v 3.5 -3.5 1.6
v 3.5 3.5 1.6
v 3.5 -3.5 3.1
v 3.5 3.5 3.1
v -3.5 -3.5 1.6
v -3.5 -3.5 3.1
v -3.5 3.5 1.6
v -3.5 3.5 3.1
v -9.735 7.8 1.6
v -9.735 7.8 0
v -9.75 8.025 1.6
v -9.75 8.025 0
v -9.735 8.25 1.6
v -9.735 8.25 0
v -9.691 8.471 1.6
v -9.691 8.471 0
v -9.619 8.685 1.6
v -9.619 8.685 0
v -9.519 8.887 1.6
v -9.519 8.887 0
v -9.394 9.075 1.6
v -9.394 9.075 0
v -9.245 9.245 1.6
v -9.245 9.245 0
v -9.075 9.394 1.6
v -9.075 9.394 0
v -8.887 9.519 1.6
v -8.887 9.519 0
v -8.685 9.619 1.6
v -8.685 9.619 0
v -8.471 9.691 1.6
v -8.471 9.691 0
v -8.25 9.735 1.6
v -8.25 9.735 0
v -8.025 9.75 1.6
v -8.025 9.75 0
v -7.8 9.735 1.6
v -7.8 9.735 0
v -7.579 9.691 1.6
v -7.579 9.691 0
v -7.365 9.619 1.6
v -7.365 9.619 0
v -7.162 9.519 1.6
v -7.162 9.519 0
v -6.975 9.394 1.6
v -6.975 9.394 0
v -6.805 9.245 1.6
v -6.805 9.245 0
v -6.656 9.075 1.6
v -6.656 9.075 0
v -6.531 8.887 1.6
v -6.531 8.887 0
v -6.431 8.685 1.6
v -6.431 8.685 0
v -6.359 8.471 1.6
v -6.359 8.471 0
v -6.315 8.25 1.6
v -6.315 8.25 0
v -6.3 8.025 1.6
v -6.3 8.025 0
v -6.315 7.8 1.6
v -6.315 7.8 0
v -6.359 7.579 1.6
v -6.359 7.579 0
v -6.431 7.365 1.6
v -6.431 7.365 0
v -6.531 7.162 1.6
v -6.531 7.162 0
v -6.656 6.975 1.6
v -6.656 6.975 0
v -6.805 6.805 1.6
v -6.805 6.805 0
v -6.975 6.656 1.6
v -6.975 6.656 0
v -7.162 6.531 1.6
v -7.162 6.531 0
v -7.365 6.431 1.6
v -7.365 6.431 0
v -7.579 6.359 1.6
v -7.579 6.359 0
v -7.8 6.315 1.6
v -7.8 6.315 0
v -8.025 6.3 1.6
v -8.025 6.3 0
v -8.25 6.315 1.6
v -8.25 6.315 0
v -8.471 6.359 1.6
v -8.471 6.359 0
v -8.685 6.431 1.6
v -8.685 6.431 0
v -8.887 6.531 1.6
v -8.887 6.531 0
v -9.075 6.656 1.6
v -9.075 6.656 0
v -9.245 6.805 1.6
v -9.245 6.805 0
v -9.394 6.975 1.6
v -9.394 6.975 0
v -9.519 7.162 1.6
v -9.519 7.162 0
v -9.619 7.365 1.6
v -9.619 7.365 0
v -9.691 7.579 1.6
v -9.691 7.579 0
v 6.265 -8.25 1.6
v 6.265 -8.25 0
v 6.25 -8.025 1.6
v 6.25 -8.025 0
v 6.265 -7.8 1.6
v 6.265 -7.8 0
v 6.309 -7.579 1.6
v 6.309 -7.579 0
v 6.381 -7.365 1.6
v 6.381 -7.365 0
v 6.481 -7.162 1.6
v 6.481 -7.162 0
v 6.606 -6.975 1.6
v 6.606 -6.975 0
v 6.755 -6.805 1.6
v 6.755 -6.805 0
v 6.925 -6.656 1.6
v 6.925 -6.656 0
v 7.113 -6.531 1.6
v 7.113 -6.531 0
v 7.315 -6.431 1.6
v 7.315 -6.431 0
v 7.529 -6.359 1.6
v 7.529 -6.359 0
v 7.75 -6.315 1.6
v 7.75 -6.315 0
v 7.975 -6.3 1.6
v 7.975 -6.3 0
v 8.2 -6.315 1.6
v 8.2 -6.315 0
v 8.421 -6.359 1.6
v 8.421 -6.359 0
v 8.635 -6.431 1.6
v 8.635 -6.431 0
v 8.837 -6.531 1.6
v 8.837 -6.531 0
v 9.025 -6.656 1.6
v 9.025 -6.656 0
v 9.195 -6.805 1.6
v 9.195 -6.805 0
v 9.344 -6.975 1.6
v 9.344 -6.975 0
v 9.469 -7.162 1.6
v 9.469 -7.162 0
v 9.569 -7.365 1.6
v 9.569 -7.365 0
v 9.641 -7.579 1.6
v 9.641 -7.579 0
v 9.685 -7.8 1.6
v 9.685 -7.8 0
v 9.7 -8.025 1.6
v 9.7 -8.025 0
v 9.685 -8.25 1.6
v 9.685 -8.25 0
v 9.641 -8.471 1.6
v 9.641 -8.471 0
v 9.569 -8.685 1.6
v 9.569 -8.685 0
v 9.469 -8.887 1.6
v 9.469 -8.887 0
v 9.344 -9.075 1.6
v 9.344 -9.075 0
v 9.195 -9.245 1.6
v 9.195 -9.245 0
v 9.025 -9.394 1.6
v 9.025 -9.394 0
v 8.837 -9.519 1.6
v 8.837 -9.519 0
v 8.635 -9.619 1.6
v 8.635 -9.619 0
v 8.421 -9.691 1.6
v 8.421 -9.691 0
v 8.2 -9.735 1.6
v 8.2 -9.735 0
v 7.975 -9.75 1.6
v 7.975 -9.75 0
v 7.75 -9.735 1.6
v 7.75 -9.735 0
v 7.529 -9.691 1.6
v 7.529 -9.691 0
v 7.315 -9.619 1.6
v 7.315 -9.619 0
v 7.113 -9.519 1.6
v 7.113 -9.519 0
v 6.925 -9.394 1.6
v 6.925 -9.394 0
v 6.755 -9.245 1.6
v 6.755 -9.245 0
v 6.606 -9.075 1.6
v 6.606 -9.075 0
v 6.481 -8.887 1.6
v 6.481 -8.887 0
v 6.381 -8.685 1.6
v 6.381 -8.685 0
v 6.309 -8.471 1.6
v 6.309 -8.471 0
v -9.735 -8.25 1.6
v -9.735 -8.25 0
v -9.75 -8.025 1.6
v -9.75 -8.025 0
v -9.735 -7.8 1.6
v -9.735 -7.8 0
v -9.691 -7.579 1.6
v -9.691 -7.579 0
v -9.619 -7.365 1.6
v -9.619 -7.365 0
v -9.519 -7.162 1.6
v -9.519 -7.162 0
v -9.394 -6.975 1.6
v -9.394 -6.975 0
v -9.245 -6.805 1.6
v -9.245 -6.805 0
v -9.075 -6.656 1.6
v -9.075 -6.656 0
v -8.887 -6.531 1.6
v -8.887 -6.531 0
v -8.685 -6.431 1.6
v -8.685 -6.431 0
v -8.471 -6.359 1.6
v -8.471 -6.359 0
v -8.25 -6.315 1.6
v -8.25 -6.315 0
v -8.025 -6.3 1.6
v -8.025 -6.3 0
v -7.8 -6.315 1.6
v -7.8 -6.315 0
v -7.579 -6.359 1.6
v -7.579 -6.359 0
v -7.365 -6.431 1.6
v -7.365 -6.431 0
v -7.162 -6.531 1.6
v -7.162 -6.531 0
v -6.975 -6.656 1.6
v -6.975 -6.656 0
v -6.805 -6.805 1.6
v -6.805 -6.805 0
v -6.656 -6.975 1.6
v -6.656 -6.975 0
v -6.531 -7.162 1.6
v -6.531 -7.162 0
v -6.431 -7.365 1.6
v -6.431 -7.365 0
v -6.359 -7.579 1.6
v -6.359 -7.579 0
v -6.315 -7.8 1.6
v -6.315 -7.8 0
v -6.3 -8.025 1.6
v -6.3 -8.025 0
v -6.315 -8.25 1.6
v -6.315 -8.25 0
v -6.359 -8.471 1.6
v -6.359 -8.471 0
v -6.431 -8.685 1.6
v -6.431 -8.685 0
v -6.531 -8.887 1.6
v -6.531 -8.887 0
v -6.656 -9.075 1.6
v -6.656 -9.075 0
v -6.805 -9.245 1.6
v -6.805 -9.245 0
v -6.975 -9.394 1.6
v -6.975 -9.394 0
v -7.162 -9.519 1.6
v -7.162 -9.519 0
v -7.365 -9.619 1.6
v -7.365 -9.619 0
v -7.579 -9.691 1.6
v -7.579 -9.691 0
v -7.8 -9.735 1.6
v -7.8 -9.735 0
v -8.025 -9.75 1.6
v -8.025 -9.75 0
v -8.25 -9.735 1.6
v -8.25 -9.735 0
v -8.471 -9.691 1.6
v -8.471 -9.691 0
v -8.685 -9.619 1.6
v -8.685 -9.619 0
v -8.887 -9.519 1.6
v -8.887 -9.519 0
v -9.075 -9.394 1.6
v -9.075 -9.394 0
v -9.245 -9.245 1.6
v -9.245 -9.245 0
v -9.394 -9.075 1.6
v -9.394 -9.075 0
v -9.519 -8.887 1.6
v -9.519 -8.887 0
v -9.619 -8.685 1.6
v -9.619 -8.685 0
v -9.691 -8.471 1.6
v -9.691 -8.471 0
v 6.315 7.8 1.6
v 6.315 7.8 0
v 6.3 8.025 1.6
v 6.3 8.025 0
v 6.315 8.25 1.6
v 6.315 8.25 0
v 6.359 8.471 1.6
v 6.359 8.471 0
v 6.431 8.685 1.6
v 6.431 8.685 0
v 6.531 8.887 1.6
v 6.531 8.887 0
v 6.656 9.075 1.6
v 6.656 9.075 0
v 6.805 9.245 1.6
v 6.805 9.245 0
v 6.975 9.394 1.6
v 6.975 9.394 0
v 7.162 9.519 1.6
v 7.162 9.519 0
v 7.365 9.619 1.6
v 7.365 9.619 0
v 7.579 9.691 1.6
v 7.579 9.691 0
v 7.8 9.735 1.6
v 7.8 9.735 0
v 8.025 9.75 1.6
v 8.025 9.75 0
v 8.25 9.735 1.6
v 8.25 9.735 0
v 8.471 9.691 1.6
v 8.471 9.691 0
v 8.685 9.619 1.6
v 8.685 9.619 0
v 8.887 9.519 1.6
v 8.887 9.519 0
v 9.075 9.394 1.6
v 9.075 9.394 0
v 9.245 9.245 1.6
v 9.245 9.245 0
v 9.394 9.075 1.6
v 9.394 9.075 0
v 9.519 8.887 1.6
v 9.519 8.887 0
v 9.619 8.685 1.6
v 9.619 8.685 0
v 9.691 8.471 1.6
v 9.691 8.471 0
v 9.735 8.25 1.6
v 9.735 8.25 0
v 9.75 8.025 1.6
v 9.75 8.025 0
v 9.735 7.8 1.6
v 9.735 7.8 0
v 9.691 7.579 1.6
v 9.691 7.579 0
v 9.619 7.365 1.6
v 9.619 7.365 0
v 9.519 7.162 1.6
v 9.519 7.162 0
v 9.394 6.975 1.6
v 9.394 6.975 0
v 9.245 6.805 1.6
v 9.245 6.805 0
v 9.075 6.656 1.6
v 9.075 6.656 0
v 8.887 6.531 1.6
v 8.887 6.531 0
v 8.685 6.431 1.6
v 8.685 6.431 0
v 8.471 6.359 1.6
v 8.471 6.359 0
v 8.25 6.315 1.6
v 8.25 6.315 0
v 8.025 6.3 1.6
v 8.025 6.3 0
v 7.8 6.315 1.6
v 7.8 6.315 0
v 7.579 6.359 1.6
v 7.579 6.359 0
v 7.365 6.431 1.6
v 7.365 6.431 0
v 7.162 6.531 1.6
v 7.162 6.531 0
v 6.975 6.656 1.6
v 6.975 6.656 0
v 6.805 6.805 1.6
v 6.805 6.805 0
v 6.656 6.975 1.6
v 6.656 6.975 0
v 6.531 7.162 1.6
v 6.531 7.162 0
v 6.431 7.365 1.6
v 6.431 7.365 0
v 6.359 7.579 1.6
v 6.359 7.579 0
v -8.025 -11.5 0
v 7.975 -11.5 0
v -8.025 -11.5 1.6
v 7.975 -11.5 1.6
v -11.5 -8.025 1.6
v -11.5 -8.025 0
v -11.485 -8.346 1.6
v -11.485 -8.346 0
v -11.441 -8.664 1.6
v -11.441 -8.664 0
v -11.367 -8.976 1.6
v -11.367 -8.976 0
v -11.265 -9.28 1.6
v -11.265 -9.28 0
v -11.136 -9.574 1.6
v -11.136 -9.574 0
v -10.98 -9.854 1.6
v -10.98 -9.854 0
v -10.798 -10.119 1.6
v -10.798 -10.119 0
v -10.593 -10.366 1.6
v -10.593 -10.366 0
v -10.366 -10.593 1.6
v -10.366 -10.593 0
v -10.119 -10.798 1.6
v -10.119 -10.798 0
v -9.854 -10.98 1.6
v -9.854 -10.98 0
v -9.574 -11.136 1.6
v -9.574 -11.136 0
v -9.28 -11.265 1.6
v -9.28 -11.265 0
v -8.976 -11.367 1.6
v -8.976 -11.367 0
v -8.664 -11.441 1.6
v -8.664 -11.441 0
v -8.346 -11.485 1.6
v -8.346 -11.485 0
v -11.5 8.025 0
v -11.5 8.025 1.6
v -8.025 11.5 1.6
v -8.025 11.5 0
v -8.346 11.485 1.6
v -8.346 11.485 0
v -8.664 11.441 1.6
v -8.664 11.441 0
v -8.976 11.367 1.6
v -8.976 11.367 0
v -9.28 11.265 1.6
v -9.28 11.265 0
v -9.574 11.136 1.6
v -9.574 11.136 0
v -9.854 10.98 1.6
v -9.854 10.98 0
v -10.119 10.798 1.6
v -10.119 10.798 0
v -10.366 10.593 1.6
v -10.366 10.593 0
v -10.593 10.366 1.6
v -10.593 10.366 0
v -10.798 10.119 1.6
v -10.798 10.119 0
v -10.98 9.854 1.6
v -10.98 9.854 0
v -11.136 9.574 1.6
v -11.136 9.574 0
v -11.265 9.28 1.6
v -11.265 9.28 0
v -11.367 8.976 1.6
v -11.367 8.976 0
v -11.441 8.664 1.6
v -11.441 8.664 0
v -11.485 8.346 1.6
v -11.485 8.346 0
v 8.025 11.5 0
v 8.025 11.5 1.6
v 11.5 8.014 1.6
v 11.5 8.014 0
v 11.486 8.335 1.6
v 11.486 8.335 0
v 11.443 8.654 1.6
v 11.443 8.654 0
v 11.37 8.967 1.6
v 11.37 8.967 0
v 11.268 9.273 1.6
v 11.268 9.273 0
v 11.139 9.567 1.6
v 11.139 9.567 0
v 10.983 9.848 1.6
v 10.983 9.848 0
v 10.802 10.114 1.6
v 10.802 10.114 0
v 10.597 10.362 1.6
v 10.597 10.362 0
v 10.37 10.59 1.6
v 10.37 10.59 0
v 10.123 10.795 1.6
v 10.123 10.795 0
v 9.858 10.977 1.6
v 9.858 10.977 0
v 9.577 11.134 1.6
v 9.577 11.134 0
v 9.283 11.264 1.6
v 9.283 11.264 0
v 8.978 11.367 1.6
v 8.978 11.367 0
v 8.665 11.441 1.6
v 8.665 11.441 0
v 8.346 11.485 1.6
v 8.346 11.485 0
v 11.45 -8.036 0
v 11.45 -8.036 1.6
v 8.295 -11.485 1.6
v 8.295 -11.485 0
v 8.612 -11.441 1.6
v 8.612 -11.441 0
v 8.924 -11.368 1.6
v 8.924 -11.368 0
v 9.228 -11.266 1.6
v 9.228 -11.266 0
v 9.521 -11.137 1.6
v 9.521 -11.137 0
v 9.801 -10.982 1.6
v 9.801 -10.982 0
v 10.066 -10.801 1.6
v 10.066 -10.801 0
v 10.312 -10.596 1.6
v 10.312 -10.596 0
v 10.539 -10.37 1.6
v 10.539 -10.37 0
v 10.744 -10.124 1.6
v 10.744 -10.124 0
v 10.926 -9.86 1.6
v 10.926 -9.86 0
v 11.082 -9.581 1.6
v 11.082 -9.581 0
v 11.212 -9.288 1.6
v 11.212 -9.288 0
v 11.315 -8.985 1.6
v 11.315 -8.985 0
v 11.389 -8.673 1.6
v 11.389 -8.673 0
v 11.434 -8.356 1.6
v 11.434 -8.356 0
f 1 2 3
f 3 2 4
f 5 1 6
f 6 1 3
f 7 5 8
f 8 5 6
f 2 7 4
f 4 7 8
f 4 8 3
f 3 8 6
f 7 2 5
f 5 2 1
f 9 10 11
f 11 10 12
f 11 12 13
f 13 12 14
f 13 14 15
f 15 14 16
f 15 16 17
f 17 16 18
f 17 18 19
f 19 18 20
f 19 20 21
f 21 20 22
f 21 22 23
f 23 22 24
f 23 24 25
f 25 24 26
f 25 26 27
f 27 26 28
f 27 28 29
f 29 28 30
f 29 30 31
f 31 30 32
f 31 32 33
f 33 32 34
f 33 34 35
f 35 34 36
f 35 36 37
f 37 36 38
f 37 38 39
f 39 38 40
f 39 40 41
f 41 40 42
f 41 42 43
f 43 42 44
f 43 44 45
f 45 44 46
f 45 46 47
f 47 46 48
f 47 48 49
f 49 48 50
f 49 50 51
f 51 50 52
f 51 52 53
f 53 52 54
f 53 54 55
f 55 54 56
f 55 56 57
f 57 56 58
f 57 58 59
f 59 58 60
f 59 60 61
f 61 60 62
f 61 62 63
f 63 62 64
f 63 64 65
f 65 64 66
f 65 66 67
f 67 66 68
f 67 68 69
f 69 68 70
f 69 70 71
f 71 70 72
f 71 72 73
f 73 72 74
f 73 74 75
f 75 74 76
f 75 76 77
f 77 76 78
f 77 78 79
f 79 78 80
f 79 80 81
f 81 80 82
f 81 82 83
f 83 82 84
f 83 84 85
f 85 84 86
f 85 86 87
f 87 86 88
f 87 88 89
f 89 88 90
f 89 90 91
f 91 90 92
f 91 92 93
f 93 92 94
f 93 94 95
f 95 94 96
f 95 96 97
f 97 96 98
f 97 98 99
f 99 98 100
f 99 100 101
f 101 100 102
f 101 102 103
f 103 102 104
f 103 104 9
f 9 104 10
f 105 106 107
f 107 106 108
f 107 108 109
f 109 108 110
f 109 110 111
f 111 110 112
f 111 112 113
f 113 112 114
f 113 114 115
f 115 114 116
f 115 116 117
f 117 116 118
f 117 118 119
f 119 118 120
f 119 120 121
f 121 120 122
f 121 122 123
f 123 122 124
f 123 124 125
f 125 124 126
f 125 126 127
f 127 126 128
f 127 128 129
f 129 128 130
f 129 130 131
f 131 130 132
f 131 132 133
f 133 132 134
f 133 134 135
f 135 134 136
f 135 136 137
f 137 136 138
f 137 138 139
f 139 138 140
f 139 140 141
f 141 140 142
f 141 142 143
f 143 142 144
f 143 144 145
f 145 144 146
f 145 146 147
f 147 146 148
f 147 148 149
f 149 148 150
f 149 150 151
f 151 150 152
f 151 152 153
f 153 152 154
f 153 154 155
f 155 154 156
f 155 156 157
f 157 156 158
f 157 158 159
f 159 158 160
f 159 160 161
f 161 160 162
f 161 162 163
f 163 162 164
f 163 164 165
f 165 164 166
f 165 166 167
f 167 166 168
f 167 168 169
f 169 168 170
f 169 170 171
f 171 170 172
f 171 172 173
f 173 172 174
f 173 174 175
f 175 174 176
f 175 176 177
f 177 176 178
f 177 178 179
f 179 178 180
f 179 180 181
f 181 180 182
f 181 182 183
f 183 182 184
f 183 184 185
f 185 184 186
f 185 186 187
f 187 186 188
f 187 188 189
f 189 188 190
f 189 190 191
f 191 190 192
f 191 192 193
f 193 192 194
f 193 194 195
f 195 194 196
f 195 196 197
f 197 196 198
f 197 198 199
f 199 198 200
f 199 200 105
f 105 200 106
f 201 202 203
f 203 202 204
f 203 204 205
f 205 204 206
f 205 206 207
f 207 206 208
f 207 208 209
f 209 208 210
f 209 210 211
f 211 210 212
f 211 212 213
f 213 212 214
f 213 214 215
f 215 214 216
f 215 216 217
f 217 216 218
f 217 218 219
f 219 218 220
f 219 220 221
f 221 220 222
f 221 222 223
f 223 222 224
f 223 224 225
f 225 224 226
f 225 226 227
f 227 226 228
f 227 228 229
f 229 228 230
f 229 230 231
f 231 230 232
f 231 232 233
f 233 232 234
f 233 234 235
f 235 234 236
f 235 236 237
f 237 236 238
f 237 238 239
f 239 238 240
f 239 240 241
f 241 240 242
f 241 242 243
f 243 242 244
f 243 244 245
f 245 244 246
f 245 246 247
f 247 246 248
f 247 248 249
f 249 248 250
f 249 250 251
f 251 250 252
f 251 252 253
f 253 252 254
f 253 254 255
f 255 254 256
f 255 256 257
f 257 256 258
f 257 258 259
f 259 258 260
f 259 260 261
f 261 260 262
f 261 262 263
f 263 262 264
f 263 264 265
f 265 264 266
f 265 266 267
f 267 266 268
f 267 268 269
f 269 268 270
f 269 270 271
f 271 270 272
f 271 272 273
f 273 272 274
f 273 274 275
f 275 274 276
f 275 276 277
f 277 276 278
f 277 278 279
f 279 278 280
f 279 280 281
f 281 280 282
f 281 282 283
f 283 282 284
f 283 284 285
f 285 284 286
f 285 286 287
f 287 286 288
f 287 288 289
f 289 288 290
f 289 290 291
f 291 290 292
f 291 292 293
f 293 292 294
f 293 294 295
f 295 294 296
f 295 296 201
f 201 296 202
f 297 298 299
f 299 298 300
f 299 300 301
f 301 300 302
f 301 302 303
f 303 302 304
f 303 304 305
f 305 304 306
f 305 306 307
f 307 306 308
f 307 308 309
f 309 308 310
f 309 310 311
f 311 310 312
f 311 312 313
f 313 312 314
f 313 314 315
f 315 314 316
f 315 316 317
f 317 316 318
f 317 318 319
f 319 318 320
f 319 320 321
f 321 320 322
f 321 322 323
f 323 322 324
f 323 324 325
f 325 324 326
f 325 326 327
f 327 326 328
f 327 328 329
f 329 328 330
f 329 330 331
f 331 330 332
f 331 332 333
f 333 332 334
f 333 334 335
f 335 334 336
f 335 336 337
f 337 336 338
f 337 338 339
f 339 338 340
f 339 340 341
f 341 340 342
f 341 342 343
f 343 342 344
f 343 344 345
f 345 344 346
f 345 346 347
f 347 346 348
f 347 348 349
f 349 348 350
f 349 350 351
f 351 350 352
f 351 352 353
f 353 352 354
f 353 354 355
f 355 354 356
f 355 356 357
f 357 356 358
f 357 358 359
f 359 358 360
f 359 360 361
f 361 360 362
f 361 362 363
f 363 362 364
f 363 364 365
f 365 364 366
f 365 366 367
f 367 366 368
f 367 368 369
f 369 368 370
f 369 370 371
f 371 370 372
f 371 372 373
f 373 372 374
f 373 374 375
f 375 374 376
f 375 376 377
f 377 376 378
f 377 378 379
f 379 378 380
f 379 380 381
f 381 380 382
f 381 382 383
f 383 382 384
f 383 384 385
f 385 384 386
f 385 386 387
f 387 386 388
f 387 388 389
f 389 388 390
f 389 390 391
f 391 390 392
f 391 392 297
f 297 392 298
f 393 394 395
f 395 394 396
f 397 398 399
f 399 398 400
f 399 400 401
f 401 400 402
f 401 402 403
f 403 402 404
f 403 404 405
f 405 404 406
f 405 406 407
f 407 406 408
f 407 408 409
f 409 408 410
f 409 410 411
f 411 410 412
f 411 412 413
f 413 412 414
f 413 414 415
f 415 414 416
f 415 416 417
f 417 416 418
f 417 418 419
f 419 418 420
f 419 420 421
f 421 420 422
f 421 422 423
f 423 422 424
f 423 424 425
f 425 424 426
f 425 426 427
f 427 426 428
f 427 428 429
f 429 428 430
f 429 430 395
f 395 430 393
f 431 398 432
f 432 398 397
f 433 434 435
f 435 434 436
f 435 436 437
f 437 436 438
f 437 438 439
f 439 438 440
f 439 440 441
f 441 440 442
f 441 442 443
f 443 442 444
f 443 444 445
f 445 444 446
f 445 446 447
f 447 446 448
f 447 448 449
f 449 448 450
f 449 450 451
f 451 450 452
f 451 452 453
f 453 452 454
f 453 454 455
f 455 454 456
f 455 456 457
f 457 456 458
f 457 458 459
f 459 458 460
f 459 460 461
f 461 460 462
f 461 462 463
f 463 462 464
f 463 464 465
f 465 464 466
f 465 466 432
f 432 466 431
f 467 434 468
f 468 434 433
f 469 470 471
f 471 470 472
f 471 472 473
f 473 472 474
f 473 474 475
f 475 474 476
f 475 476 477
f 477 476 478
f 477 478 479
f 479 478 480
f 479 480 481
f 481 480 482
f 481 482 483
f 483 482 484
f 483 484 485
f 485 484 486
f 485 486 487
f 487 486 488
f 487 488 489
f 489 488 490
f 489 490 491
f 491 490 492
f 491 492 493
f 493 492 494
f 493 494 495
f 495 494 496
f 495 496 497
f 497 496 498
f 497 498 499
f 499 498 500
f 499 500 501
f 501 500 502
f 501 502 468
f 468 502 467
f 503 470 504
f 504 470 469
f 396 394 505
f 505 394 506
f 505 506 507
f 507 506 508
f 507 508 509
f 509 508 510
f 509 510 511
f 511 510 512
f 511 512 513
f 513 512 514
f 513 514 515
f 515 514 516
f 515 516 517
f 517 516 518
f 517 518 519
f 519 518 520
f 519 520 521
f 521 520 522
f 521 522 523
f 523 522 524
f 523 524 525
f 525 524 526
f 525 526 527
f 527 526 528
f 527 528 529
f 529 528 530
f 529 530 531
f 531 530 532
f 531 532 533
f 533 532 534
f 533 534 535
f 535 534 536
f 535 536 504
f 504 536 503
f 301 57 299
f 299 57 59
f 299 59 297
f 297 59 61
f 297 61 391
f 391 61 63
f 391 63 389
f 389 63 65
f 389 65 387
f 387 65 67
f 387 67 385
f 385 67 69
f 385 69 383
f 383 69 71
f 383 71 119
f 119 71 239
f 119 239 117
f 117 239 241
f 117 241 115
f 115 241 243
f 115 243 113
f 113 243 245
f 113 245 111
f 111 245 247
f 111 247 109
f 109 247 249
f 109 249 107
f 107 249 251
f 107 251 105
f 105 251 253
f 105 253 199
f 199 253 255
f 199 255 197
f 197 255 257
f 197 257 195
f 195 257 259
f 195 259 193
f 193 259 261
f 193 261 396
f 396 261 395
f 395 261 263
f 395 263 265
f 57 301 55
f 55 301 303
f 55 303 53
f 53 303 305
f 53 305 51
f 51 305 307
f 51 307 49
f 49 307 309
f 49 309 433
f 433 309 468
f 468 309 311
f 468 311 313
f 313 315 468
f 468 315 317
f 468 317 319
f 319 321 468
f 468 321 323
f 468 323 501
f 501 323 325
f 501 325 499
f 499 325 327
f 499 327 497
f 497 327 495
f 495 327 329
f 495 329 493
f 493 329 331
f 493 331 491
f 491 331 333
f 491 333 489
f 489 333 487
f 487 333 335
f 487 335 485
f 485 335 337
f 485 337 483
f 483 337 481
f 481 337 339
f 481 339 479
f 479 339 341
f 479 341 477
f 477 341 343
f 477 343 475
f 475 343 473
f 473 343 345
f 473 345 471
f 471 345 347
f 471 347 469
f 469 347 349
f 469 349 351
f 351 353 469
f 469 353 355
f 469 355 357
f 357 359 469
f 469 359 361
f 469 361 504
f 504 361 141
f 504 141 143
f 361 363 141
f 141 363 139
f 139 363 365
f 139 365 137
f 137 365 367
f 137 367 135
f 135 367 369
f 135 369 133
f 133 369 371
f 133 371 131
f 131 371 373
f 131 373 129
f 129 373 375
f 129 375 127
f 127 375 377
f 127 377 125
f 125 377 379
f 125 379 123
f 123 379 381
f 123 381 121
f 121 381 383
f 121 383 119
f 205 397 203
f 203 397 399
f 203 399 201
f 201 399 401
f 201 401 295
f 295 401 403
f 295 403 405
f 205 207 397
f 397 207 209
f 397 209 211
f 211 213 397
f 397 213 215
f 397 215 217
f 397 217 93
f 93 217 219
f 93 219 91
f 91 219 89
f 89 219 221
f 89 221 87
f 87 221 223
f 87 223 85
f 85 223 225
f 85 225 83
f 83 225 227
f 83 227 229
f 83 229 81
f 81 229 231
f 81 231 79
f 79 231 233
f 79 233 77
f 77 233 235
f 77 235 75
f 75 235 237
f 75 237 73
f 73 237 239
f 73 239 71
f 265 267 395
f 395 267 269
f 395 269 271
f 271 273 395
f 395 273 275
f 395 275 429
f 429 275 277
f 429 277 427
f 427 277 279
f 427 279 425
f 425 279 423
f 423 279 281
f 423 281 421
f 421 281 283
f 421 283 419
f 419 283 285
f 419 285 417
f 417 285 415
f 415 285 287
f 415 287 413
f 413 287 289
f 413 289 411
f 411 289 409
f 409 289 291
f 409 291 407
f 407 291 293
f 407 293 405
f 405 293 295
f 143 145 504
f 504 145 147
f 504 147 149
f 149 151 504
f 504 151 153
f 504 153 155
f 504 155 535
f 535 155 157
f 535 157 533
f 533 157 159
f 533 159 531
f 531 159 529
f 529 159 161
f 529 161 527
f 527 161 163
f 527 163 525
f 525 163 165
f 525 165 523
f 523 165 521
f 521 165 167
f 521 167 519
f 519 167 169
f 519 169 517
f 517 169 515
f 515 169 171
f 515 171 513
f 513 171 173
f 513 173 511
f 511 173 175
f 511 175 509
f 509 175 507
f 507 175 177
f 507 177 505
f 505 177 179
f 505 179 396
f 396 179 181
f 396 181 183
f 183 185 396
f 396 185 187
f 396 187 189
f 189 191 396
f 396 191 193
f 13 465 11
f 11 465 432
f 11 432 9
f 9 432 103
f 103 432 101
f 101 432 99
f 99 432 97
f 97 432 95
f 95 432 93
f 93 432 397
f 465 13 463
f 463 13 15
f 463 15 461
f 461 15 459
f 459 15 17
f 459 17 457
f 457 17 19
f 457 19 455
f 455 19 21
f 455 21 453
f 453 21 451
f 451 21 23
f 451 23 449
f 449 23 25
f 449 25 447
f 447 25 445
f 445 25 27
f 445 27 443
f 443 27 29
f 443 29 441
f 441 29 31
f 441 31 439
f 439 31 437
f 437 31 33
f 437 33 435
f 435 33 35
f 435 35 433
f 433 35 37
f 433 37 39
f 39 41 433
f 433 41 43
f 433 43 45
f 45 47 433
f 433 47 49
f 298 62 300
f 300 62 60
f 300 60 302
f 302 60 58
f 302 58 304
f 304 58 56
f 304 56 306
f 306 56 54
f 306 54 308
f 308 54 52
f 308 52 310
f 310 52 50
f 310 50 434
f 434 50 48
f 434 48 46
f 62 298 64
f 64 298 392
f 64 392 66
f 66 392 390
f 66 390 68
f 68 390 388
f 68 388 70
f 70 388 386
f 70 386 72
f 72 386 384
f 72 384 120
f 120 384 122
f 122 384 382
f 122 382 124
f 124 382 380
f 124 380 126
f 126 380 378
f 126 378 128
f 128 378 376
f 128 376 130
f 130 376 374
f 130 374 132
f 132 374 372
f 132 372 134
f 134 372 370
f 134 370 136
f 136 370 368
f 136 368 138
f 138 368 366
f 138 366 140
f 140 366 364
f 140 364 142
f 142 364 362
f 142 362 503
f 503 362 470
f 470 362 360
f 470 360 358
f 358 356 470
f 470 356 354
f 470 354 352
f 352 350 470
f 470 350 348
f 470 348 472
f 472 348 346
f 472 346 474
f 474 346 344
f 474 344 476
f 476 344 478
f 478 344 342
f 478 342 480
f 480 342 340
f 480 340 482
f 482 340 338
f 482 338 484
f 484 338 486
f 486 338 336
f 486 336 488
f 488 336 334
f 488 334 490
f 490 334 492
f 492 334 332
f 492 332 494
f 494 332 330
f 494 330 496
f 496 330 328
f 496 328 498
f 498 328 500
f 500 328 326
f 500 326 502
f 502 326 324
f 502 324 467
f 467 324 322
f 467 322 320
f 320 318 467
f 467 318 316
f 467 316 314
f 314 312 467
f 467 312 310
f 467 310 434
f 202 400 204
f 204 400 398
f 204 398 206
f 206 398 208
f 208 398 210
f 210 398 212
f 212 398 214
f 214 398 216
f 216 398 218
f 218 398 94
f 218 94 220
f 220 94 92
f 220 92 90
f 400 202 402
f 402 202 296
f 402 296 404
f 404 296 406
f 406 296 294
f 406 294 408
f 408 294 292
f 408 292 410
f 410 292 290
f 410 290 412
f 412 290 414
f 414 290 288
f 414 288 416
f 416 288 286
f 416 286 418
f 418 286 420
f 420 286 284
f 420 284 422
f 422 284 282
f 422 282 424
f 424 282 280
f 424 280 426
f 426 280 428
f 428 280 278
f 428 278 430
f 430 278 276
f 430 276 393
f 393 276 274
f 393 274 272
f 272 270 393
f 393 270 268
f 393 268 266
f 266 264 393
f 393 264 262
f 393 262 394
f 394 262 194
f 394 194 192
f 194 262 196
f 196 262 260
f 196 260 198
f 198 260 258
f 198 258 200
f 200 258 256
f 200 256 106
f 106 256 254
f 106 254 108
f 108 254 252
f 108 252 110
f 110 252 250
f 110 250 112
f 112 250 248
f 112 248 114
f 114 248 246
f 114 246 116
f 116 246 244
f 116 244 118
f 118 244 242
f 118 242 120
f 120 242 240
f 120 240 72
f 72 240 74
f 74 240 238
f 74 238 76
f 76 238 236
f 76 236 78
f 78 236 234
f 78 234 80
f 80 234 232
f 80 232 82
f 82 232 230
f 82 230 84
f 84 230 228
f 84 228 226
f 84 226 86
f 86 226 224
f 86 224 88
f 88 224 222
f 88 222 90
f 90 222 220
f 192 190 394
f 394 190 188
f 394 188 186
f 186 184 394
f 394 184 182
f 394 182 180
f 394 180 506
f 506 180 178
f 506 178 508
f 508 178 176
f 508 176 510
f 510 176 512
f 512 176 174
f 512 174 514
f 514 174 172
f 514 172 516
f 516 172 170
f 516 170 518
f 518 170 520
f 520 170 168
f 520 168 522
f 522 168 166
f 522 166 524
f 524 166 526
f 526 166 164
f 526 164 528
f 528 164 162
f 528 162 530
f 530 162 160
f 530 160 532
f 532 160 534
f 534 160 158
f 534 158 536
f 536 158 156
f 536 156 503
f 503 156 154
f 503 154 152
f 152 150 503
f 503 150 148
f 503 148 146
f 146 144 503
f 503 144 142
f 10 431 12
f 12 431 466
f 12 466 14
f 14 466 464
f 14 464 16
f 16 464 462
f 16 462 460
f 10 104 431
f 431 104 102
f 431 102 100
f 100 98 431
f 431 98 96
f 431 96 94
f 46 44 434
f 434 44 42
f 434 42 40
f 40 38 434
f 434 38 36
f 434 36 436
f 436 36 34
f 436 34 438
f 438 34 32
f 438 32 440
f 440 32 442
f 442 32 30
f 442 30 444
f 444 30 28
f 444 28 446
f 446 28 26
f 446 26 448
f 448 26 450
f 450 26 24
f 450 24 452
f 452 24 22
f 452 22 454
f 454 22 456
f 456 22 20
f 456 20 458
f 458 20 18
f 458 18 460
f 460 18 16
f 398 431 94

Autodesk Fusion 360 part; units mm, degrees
sketch "Sketch1" plane through (0, 0, 0) normal (0, 0, 1) x (1, 0, 0)
  line L0 (11.5, 11.5) -> (-11.5, 11.5) construction
  line L1 (-11.5, 11.5) -> (-11.5, -11.5) construction
  line L2 (-11.5, -11.5) -> (11.5, -11.5) construction
  line L3 (11.5, -11.5) -> (11.5, 11.5) construction
  line L4 (11.5, 11.5) -> (-11.5, -11.5) construction
  line L5 (-11.5, 11.5) -> (11.5, -11.5) construction
  line L6 (9.7, 9.75) -> (-9.7, 9.75) construction
  line L7 (-9.7, 9.75) -> (-9.7, -9.75) construction
  line L8 (-9.7, -9.75) -> (9.7, -9.75) construction
  line L9 (9.7, -9.75) -> (9.7, 9.75) construction
  line L10 (9.7, 9.75) -> (-9.7, -9.75) construction
  line L11 (-9.7, 9.75) -> (9.7, -9.75) construction
  line L12 (11.5, 6.3) -> (-11.5, 6.3) construction
  line L13 (6.3, 11.5) -> (6.3, -11.5) construction
  line L14 (-11.5, -6.3) -> (11.5, -6.3) construction
  line L15 (-6.3, 11.5) -> (-6.3, -11.5) construction
  line L16 (-11.5, 0) -> (11.5, 0) construction
  line L17 (0, 11.5) -> (0, -11.5) construction
  circle A0 centre (8.025, 8.025) radius 1.725
  circle A1 centre (-8.025, 8.025) radius 1.725
  circle A2 centre (-8.025, -8.025) radius 1.725
  circle A3 centre (7.975, -8.025) radius 1.725
  circle A4 centre (8.025, 8.025) radius 3.475 construction
  circle A5 centre (-8.025, 8.025) radius 3.475 construction
  circle A6 centre (-8.025, -8.025) radius 3.475 construction
  circle A7 centre (7.975, -8.025) radius 3.475 construction
  line L18 (11.5, 8.0142) -> (11.45, -8.0358)
  arc A8 (7.975, -11.5) -> (11.45, -8.0358) centre (7.975, -8.025) ccw
  line L19 (7.975, -11.5) -> (-8.025, -11.5)
  arc A9 (-11.5, -8.025) -> (-8.025, -11.5) centre (-8.025, -8.025) ccw
  line L20 (-11.5, -8.025) -> (-11.5, 8.025)
  arc A10 (-8.025, 11.5) -> (-11.5, 8.025) centre (-8.025, 8.025) ccw
  line L21 (-8.025, 11.5) -> (8.025, 11.5)
  arc A11 (11.5, 8.0142) -> (8.025, 11.5) centre (8.025, 8.025) ccw
  dimension "d1" = 23
  dimension "d2" = 23
  dimension "d3" = 19.4
  dimension "d4" = 19.5
  dimension "d5" = 12.6
  dimension "d6" = 6.3
  dimension "d7" = 6.3
  dimension "d8" = 12.6
extrude "Extrude1" add sketch "Sketch1" along normal blind 1.6 makes body 1
sketch "Sketch3" plane through (0, 0, 1.6) normal (0, 0, 1) x (-1, 0, 0)
  circle A0 centre (-7.975, 8.025) radius 1.725
  circle A1 centre (8.025, -8.025) radius 1.725
  circle A2 centre (-8.025, -8.025) radius 1.725
  circle A3 centre (8.025, 8.025) radius 1.725
  arc A4 (-7.975, 11.5) -> (-11.45, 8.0358) centre (-7.975, 8.025) ccw
  line L0 (-11.45, 8.0358) -> (-11.5, -8.0142)
  arc A5 (-11.5, -8.0142) -> (-8.025, -11.5) centre (-8.025, -8.025) ccw
  line L1 (-8.025, -11.5) -> (8.025, -11.5)
  arc A6 (8.025, -11.5) -> (11.5, -8.025) centre (8.025, -8.025) ccw
  line L2 (11.5, -8.025) -> (11.5, 8.025)
  arc A7 (11.5, 8.025) -> (8.025, 11.5) centre (8.025, 8.025) ccw
  line L3 (8.025, 11.5) -> (-7.975, 11.5)
  line L4 (-3.5, 3.5) -> (3.5, 3.5)
  line L5 (3.5, 3.5) -> (3.5, -3.5)
  line L6 (3.5, -3.5) -> (-3.5, -3.5)
  line L7 (-3.5, -3.5) -> (-3.5, 3.5)
  line L8 (-3.5, 3.5) -> (3.5, -3.5) construction
  line L9 (3.5, 3.5) -> (-3.5, -3.5) construction
  point P0 (8.025, 8.025)
  point P1 (8.025, 8.025)
  dimension "d15" = 7
  dimension "d16" = 7
extrude "Extrude3" add sketch "Sketch3" along normal blind 1.5 separate body contours L4 L5 L6 L7 makes body 2
copy_body "Body->Comp1" bodies 2 removing the originals makes body 3 in component "Sensor"
component "Sensor" placed x (1, 0, 0) y (0, 1, 0) z (0, 0, 1) at (0, 0, 0)
equation "d5 = d6 * 2"
equation "d6 = ( 12.5 / 2 ) * 1 mm + 0.05 mm"
equation "d7 = d6"
equation "d8 = d5"
